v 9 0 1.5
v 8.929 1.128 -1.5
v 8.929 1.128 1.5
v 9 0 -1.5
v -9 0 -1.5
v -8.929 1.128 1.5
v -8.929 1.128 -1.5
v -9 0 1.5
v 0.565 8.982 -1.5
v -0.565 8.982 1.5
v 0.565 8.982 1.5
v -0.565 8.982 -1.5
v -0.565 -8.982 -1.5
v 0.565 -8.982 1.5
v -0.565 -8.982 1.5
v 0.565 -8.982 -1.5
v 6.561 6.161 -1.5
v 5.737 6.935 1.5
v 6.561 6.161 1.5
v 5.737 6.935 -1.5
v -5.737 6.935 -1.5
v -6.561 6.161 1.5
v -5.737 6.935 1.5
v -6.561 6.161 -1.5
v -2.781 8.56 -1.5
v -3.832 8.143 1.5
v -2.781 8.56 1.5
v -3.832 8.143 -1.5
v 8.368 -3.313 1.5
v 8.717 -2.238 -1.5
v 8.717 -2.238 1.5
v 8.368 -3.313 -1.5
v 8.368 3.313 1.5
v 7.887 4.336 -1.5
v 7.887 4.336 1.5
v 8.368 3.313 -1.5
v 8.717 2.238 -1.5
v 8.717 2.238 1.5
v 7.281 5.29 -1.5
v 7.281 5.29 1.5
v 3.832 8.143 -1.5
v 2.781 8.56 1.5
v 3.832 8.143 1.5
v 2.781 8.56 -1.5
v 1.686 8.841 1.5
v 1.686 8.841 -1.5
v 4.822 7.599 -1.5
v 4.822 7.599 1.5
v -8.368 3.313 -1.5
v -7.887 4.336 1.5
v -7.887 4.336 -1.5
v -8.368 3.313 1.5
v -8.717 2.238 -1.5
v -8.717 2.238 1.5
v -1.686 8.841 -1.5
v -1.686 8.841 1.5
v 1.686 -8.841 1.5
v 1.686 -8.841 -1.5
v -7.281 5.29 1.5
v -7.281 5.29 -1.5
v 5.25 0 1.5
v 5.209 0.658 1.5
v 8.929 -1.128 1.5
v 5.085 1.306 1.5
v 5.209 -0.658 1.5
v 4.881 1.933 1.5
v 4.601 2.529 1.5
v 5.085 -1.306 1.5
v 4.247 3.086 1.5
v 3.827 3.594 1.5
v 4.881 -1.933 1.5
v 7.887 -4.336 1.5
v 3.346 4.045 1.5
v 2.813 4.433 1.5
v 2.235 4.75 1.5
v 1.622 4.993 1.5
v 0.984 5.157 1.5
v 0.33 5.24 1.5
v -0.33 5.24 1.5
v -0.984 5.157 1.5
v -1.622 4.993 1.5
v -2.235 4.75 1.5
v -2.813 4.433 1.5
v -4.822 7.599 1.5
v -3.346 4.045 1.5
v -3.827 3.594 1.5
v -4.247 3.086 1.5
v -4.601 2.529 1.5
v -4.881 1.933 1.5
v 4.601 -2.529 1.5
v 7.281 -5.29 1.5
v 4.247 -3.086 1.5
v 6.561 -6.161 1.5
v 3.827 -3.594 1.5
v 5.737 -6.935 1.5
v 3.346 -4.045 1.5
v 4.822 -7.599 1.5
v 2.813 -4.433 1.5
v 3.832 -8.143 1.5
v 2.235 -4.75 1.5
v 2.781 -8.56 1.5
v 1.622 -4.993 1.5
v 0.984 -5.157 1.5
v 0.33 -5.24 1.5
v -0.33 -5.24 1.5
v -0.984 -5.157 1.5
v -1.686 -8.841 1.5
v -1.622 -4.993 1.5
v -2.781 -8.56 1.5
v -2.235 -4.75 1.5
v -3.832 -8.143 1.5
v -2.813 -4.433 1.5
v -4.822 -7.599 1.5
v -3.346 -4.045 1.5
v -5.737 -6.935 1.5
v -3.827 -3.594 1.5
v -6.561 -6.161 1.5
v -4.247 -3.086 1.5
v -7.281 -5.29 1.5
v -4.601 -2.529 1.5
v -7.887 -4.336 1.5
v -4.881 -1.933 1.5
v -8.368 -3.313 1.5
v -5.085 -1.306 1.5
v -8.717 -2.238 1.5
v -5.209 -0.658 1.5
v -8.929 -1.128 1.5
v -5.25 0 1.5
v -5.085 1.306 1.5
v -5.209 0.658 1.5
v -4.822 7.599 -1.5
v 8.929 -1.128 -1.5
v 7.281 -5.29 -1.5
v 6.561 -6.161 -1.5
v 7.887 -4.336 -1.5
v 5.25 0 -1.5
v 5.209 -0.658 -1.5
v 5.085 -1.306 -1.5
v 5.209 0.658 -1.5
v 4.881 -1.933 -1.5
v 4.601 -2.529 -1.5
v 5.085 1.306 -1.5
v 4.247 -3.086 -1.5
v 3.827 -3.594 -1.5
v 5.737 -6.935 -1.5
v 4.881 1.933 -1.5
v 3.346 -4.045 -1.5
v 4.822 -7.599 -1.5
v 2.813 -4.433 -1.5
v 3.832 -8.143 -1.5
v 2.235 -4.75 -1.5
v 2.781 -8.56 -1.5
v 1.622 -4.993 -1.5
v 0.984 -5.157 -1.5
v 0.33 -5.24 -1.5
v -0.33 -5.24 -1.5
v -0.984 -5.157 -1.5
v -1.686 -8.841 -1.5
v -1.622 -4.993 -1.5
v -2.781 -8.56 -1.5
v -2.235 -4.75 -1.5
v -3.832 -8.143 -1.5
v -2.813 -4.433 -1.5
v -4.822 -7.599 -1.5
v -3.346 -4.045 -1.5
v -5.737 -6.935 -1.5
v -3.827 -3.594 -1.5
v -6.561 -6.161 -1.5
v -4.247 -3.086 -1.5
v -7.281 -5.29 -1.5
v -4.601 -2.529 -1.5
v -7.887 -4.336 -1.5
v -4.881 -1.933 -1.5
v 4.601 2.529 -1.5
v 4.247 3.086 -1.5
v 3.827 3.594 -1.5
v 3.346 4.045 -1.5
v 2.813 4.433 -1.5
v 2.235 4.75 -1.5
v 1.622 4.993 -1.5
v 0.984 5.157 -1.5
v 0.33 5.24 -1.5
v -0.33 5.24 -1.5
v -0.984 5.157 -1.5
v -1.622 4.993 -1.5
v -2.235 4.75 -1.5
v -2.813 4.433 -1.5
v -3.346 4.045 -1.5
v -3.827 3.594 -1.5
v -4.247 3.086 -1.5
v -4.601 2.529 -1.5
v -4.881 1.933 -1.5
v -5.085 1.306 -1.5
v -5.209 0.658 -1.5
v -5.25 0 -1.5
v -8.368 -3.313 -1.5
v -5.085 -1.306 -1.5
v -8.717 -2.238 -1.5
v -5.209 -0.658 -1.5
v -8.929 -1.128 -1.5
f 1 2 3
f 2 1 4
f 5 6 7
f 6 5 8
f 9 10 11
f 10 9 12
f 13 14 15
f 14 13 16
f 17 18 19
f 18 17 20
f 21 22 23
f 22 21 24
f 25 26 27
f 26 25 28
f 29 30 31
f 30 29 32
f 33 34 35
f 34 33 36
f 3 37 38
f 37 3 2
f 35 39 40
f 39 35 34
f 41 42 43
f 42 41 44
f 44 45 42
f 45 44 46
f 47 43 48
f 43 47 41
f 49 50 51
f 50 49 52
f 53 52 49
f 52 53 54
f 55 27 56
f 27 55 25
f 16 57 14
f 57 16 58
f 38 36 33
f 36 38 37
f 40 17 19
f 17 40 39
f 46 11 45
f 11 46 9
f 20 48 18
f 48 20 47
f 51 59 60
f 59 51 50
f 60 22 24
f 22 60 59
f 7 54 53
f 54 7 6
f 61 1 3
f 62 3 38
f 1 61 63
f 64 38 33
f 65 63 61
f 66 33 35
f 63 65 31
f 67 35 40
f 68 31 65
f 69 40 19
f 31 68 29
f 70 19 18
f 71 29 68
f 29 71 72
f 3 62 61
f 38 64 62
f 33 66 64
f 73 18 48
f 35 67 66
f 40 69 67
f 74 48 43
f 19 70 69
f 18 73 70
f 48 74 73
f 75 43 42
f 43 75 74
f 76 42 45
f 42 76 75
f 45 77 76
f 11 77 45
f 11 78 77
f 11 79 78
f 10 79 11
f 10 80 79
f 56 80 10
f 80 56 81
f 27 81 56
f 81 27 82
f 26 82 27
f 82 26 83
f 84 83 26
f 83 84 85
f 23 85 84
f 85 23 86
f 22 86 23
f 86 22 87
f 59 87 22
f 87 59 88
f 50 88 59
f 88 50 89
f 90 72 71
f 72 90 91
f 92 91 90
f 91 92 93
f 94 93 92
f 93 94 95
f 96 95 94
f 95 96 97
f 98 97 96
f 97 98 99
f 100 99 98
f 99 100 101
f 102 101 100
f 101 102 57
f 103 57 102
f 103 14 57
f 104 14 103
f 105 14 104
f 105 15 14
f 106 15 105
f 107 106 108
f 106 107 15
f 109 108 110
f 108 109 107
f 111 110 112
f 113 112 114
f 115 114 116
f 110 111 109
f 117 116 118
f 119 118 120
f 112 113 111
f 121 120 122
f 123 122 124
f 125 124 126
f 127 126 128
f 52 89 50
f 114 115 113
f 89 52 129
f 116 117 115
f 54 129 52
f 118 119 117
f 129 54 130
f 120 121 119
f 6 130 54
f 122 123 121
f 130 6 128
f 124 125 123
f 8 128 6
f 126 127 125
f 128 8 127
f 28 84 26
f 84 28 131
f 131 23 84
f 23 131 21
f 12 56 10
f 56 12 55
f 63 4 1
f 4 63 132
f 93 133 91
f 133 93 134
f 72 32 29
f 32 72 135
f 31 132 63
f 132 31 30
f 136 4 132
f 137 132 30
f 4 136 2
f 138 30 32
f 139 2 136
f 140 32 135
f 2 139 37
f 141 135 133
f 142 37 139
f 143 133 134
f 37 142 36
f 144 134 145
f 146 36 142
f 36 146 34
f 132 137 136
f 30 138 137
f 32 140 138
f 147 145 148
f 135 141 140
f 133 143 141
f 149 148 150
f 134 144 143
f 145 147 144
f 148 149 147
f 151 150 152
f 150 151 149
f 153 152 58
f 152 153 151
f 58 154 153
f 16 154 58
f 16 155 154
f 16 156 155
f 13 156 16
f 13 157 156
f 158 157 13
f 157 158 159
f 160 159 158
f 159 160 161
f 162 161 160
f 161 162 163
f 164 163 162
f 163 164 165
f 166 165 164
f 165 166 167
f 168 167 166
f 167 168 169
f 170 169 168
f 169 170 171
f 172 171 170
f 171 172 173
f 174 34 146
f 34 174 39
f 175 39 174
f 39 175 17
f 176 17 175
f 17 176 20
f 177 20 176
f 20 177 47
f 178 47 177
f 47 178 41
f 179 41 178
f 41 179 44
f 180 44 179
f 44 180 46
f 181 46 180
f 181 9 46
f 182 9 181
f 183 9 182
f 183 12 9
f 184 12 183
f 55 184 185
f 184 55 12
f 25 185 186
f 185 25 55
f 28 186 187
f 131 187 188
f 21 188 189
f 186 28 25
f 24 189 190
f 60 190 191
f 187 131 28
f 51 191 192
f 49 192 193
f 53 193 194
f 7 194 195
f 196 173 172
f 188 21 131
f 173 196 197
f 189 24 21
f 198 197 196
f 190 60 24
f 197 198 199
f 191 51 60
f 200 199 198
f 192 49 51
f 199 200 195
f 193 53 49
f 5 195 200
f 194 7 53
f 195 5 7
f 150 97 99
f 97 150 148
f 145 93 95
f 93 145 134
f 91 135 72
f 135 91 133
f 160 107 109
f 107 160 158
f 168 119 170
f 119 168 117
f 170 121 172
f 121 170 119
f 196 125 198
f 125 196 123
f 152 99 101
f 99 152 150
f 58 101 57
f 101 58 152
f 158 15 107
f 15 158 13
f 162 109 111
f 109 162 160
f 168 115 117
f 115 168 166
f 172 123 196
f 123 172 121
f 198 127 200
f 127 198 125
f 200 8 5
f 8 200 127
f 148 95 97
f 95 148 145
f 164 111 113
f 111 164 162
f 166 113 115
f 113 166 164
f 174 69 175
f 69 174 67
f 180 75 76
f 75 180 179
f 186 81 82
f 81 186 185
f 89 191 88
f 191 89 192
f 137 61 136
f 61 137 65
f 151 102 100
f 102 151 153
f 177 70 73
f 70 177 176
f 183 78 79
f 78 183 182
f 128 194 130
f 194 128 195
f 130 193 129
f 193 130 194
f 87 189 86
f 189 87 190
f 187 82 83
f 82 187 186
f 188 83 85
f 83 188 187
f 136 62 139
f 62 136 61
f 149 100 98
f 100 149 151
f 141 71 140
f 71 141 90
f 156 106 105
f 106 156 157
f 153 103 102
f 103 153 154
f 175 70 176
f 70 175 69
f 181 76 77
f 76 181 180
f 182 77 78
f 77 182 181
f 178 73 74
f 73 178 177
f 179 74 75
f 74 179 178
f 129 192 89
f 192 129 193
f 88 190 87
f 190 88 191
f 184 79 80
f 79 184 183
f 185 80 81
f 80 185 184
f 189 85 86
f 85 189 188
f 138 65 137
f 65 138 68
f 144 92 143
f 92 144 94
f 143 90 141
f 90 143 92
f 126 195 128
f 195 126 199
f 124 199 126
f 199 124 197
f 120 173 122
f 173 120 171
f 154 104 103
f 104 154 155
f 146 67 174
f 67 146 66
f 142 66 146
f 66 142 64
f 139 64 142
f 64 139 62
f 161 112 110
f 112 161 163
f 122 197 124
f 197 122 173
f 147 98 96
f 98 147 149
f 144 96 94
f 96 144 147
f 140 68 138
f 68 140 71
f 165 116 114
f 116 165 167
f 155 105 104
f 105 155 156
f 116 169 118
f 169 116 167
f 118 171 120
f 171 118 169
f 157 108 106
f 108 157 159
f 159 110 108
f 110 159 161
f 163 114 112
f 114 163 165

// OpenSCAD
$fn = 50;


difference() {
	union() {
		translate(v = [0, 0, -1.5000000000]) {
			cylinder(h = 3, r = 9.0000000000);
		}
	}
	union() {
		translate(v = [0, 0, -100.0000000000]) {
			cylinder(h = 200, r = 5.2500000000);
		}
	}
}
